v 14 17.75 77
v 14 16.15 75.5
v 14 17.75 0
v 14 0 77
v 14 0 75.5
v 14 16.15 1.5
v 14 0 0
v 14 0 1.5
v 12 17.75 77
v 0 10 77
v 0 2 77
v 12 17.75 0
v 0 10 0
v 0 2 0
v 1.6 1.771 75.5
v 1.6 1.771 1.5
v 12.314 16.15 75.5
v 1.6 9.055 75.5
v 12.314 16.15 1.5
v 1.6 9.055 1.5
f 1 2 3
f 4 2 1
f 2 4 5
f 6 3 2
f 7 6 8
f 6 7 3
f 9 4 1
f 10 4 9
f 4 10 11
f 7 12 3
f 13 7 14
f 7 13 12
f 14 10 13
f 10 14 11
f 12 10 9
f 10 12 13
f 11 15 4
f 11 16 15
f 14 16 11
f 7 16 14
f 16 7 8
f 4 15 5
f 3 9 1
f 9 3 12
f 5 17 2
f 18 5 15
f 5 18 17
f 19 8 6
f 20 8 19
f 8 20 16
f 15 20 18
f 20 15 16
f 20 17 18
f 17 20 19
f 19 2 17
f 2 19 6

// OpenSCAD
//
//LOGIK Retro hra - Náhradní díl
//

w=77;//    w-idth
d=17.75;// d-epth
h=14;//    h-eight
t=1.5;//   t-hick

difference(){
    polyhedron(
        points=[
        [h,0,0],//0
        [h,d,0],//1
        [12,d,0],//2
        [0,10,0],//3
        [0,2,0],//4

        [h,0,w],//5
        [h,d,w],//6
        [12,d,w],//7
        [0,10,w],//8    
        [0,2,w]],//9
        faces=[
        [0,1,2,3,4],
        [5,6,1,0],
        [2,1,6,7],
        [3,2,7,8],
        [4,3,8,9],
        [0,4,9,5],
        [9,8,7,6,5]
    ]);
    translate([0.1,-0.1,t])//0.1 cheat fix
    polyhedron(
        points=[
        [h,0,0],//0
        [h,d-t,0],//1
        [h-(h-t)/7,d-t,0],//2
        [t,(d-t)/d*10,0],//3
        [t,(d-t)/d*2,0],//4

        [h,0,w-2*t],//5
        [h,d-t,w-2*t],//6
        [h-(h-t)/7,d-t,w-2*t],//7
        [t,(d-t)/d*10,w-2*t],//8
        [t,(d-t)/d*2,w-2*t]],//9
        faces=[
        [0,1,2,3,4],
        [5,6,1,0],
        [2,1,6,7],
        [3,2,7,8],
        [4,3,8,9],
        [0,4,9,5],
        [9,8,7,6,5]
    ]);
}
